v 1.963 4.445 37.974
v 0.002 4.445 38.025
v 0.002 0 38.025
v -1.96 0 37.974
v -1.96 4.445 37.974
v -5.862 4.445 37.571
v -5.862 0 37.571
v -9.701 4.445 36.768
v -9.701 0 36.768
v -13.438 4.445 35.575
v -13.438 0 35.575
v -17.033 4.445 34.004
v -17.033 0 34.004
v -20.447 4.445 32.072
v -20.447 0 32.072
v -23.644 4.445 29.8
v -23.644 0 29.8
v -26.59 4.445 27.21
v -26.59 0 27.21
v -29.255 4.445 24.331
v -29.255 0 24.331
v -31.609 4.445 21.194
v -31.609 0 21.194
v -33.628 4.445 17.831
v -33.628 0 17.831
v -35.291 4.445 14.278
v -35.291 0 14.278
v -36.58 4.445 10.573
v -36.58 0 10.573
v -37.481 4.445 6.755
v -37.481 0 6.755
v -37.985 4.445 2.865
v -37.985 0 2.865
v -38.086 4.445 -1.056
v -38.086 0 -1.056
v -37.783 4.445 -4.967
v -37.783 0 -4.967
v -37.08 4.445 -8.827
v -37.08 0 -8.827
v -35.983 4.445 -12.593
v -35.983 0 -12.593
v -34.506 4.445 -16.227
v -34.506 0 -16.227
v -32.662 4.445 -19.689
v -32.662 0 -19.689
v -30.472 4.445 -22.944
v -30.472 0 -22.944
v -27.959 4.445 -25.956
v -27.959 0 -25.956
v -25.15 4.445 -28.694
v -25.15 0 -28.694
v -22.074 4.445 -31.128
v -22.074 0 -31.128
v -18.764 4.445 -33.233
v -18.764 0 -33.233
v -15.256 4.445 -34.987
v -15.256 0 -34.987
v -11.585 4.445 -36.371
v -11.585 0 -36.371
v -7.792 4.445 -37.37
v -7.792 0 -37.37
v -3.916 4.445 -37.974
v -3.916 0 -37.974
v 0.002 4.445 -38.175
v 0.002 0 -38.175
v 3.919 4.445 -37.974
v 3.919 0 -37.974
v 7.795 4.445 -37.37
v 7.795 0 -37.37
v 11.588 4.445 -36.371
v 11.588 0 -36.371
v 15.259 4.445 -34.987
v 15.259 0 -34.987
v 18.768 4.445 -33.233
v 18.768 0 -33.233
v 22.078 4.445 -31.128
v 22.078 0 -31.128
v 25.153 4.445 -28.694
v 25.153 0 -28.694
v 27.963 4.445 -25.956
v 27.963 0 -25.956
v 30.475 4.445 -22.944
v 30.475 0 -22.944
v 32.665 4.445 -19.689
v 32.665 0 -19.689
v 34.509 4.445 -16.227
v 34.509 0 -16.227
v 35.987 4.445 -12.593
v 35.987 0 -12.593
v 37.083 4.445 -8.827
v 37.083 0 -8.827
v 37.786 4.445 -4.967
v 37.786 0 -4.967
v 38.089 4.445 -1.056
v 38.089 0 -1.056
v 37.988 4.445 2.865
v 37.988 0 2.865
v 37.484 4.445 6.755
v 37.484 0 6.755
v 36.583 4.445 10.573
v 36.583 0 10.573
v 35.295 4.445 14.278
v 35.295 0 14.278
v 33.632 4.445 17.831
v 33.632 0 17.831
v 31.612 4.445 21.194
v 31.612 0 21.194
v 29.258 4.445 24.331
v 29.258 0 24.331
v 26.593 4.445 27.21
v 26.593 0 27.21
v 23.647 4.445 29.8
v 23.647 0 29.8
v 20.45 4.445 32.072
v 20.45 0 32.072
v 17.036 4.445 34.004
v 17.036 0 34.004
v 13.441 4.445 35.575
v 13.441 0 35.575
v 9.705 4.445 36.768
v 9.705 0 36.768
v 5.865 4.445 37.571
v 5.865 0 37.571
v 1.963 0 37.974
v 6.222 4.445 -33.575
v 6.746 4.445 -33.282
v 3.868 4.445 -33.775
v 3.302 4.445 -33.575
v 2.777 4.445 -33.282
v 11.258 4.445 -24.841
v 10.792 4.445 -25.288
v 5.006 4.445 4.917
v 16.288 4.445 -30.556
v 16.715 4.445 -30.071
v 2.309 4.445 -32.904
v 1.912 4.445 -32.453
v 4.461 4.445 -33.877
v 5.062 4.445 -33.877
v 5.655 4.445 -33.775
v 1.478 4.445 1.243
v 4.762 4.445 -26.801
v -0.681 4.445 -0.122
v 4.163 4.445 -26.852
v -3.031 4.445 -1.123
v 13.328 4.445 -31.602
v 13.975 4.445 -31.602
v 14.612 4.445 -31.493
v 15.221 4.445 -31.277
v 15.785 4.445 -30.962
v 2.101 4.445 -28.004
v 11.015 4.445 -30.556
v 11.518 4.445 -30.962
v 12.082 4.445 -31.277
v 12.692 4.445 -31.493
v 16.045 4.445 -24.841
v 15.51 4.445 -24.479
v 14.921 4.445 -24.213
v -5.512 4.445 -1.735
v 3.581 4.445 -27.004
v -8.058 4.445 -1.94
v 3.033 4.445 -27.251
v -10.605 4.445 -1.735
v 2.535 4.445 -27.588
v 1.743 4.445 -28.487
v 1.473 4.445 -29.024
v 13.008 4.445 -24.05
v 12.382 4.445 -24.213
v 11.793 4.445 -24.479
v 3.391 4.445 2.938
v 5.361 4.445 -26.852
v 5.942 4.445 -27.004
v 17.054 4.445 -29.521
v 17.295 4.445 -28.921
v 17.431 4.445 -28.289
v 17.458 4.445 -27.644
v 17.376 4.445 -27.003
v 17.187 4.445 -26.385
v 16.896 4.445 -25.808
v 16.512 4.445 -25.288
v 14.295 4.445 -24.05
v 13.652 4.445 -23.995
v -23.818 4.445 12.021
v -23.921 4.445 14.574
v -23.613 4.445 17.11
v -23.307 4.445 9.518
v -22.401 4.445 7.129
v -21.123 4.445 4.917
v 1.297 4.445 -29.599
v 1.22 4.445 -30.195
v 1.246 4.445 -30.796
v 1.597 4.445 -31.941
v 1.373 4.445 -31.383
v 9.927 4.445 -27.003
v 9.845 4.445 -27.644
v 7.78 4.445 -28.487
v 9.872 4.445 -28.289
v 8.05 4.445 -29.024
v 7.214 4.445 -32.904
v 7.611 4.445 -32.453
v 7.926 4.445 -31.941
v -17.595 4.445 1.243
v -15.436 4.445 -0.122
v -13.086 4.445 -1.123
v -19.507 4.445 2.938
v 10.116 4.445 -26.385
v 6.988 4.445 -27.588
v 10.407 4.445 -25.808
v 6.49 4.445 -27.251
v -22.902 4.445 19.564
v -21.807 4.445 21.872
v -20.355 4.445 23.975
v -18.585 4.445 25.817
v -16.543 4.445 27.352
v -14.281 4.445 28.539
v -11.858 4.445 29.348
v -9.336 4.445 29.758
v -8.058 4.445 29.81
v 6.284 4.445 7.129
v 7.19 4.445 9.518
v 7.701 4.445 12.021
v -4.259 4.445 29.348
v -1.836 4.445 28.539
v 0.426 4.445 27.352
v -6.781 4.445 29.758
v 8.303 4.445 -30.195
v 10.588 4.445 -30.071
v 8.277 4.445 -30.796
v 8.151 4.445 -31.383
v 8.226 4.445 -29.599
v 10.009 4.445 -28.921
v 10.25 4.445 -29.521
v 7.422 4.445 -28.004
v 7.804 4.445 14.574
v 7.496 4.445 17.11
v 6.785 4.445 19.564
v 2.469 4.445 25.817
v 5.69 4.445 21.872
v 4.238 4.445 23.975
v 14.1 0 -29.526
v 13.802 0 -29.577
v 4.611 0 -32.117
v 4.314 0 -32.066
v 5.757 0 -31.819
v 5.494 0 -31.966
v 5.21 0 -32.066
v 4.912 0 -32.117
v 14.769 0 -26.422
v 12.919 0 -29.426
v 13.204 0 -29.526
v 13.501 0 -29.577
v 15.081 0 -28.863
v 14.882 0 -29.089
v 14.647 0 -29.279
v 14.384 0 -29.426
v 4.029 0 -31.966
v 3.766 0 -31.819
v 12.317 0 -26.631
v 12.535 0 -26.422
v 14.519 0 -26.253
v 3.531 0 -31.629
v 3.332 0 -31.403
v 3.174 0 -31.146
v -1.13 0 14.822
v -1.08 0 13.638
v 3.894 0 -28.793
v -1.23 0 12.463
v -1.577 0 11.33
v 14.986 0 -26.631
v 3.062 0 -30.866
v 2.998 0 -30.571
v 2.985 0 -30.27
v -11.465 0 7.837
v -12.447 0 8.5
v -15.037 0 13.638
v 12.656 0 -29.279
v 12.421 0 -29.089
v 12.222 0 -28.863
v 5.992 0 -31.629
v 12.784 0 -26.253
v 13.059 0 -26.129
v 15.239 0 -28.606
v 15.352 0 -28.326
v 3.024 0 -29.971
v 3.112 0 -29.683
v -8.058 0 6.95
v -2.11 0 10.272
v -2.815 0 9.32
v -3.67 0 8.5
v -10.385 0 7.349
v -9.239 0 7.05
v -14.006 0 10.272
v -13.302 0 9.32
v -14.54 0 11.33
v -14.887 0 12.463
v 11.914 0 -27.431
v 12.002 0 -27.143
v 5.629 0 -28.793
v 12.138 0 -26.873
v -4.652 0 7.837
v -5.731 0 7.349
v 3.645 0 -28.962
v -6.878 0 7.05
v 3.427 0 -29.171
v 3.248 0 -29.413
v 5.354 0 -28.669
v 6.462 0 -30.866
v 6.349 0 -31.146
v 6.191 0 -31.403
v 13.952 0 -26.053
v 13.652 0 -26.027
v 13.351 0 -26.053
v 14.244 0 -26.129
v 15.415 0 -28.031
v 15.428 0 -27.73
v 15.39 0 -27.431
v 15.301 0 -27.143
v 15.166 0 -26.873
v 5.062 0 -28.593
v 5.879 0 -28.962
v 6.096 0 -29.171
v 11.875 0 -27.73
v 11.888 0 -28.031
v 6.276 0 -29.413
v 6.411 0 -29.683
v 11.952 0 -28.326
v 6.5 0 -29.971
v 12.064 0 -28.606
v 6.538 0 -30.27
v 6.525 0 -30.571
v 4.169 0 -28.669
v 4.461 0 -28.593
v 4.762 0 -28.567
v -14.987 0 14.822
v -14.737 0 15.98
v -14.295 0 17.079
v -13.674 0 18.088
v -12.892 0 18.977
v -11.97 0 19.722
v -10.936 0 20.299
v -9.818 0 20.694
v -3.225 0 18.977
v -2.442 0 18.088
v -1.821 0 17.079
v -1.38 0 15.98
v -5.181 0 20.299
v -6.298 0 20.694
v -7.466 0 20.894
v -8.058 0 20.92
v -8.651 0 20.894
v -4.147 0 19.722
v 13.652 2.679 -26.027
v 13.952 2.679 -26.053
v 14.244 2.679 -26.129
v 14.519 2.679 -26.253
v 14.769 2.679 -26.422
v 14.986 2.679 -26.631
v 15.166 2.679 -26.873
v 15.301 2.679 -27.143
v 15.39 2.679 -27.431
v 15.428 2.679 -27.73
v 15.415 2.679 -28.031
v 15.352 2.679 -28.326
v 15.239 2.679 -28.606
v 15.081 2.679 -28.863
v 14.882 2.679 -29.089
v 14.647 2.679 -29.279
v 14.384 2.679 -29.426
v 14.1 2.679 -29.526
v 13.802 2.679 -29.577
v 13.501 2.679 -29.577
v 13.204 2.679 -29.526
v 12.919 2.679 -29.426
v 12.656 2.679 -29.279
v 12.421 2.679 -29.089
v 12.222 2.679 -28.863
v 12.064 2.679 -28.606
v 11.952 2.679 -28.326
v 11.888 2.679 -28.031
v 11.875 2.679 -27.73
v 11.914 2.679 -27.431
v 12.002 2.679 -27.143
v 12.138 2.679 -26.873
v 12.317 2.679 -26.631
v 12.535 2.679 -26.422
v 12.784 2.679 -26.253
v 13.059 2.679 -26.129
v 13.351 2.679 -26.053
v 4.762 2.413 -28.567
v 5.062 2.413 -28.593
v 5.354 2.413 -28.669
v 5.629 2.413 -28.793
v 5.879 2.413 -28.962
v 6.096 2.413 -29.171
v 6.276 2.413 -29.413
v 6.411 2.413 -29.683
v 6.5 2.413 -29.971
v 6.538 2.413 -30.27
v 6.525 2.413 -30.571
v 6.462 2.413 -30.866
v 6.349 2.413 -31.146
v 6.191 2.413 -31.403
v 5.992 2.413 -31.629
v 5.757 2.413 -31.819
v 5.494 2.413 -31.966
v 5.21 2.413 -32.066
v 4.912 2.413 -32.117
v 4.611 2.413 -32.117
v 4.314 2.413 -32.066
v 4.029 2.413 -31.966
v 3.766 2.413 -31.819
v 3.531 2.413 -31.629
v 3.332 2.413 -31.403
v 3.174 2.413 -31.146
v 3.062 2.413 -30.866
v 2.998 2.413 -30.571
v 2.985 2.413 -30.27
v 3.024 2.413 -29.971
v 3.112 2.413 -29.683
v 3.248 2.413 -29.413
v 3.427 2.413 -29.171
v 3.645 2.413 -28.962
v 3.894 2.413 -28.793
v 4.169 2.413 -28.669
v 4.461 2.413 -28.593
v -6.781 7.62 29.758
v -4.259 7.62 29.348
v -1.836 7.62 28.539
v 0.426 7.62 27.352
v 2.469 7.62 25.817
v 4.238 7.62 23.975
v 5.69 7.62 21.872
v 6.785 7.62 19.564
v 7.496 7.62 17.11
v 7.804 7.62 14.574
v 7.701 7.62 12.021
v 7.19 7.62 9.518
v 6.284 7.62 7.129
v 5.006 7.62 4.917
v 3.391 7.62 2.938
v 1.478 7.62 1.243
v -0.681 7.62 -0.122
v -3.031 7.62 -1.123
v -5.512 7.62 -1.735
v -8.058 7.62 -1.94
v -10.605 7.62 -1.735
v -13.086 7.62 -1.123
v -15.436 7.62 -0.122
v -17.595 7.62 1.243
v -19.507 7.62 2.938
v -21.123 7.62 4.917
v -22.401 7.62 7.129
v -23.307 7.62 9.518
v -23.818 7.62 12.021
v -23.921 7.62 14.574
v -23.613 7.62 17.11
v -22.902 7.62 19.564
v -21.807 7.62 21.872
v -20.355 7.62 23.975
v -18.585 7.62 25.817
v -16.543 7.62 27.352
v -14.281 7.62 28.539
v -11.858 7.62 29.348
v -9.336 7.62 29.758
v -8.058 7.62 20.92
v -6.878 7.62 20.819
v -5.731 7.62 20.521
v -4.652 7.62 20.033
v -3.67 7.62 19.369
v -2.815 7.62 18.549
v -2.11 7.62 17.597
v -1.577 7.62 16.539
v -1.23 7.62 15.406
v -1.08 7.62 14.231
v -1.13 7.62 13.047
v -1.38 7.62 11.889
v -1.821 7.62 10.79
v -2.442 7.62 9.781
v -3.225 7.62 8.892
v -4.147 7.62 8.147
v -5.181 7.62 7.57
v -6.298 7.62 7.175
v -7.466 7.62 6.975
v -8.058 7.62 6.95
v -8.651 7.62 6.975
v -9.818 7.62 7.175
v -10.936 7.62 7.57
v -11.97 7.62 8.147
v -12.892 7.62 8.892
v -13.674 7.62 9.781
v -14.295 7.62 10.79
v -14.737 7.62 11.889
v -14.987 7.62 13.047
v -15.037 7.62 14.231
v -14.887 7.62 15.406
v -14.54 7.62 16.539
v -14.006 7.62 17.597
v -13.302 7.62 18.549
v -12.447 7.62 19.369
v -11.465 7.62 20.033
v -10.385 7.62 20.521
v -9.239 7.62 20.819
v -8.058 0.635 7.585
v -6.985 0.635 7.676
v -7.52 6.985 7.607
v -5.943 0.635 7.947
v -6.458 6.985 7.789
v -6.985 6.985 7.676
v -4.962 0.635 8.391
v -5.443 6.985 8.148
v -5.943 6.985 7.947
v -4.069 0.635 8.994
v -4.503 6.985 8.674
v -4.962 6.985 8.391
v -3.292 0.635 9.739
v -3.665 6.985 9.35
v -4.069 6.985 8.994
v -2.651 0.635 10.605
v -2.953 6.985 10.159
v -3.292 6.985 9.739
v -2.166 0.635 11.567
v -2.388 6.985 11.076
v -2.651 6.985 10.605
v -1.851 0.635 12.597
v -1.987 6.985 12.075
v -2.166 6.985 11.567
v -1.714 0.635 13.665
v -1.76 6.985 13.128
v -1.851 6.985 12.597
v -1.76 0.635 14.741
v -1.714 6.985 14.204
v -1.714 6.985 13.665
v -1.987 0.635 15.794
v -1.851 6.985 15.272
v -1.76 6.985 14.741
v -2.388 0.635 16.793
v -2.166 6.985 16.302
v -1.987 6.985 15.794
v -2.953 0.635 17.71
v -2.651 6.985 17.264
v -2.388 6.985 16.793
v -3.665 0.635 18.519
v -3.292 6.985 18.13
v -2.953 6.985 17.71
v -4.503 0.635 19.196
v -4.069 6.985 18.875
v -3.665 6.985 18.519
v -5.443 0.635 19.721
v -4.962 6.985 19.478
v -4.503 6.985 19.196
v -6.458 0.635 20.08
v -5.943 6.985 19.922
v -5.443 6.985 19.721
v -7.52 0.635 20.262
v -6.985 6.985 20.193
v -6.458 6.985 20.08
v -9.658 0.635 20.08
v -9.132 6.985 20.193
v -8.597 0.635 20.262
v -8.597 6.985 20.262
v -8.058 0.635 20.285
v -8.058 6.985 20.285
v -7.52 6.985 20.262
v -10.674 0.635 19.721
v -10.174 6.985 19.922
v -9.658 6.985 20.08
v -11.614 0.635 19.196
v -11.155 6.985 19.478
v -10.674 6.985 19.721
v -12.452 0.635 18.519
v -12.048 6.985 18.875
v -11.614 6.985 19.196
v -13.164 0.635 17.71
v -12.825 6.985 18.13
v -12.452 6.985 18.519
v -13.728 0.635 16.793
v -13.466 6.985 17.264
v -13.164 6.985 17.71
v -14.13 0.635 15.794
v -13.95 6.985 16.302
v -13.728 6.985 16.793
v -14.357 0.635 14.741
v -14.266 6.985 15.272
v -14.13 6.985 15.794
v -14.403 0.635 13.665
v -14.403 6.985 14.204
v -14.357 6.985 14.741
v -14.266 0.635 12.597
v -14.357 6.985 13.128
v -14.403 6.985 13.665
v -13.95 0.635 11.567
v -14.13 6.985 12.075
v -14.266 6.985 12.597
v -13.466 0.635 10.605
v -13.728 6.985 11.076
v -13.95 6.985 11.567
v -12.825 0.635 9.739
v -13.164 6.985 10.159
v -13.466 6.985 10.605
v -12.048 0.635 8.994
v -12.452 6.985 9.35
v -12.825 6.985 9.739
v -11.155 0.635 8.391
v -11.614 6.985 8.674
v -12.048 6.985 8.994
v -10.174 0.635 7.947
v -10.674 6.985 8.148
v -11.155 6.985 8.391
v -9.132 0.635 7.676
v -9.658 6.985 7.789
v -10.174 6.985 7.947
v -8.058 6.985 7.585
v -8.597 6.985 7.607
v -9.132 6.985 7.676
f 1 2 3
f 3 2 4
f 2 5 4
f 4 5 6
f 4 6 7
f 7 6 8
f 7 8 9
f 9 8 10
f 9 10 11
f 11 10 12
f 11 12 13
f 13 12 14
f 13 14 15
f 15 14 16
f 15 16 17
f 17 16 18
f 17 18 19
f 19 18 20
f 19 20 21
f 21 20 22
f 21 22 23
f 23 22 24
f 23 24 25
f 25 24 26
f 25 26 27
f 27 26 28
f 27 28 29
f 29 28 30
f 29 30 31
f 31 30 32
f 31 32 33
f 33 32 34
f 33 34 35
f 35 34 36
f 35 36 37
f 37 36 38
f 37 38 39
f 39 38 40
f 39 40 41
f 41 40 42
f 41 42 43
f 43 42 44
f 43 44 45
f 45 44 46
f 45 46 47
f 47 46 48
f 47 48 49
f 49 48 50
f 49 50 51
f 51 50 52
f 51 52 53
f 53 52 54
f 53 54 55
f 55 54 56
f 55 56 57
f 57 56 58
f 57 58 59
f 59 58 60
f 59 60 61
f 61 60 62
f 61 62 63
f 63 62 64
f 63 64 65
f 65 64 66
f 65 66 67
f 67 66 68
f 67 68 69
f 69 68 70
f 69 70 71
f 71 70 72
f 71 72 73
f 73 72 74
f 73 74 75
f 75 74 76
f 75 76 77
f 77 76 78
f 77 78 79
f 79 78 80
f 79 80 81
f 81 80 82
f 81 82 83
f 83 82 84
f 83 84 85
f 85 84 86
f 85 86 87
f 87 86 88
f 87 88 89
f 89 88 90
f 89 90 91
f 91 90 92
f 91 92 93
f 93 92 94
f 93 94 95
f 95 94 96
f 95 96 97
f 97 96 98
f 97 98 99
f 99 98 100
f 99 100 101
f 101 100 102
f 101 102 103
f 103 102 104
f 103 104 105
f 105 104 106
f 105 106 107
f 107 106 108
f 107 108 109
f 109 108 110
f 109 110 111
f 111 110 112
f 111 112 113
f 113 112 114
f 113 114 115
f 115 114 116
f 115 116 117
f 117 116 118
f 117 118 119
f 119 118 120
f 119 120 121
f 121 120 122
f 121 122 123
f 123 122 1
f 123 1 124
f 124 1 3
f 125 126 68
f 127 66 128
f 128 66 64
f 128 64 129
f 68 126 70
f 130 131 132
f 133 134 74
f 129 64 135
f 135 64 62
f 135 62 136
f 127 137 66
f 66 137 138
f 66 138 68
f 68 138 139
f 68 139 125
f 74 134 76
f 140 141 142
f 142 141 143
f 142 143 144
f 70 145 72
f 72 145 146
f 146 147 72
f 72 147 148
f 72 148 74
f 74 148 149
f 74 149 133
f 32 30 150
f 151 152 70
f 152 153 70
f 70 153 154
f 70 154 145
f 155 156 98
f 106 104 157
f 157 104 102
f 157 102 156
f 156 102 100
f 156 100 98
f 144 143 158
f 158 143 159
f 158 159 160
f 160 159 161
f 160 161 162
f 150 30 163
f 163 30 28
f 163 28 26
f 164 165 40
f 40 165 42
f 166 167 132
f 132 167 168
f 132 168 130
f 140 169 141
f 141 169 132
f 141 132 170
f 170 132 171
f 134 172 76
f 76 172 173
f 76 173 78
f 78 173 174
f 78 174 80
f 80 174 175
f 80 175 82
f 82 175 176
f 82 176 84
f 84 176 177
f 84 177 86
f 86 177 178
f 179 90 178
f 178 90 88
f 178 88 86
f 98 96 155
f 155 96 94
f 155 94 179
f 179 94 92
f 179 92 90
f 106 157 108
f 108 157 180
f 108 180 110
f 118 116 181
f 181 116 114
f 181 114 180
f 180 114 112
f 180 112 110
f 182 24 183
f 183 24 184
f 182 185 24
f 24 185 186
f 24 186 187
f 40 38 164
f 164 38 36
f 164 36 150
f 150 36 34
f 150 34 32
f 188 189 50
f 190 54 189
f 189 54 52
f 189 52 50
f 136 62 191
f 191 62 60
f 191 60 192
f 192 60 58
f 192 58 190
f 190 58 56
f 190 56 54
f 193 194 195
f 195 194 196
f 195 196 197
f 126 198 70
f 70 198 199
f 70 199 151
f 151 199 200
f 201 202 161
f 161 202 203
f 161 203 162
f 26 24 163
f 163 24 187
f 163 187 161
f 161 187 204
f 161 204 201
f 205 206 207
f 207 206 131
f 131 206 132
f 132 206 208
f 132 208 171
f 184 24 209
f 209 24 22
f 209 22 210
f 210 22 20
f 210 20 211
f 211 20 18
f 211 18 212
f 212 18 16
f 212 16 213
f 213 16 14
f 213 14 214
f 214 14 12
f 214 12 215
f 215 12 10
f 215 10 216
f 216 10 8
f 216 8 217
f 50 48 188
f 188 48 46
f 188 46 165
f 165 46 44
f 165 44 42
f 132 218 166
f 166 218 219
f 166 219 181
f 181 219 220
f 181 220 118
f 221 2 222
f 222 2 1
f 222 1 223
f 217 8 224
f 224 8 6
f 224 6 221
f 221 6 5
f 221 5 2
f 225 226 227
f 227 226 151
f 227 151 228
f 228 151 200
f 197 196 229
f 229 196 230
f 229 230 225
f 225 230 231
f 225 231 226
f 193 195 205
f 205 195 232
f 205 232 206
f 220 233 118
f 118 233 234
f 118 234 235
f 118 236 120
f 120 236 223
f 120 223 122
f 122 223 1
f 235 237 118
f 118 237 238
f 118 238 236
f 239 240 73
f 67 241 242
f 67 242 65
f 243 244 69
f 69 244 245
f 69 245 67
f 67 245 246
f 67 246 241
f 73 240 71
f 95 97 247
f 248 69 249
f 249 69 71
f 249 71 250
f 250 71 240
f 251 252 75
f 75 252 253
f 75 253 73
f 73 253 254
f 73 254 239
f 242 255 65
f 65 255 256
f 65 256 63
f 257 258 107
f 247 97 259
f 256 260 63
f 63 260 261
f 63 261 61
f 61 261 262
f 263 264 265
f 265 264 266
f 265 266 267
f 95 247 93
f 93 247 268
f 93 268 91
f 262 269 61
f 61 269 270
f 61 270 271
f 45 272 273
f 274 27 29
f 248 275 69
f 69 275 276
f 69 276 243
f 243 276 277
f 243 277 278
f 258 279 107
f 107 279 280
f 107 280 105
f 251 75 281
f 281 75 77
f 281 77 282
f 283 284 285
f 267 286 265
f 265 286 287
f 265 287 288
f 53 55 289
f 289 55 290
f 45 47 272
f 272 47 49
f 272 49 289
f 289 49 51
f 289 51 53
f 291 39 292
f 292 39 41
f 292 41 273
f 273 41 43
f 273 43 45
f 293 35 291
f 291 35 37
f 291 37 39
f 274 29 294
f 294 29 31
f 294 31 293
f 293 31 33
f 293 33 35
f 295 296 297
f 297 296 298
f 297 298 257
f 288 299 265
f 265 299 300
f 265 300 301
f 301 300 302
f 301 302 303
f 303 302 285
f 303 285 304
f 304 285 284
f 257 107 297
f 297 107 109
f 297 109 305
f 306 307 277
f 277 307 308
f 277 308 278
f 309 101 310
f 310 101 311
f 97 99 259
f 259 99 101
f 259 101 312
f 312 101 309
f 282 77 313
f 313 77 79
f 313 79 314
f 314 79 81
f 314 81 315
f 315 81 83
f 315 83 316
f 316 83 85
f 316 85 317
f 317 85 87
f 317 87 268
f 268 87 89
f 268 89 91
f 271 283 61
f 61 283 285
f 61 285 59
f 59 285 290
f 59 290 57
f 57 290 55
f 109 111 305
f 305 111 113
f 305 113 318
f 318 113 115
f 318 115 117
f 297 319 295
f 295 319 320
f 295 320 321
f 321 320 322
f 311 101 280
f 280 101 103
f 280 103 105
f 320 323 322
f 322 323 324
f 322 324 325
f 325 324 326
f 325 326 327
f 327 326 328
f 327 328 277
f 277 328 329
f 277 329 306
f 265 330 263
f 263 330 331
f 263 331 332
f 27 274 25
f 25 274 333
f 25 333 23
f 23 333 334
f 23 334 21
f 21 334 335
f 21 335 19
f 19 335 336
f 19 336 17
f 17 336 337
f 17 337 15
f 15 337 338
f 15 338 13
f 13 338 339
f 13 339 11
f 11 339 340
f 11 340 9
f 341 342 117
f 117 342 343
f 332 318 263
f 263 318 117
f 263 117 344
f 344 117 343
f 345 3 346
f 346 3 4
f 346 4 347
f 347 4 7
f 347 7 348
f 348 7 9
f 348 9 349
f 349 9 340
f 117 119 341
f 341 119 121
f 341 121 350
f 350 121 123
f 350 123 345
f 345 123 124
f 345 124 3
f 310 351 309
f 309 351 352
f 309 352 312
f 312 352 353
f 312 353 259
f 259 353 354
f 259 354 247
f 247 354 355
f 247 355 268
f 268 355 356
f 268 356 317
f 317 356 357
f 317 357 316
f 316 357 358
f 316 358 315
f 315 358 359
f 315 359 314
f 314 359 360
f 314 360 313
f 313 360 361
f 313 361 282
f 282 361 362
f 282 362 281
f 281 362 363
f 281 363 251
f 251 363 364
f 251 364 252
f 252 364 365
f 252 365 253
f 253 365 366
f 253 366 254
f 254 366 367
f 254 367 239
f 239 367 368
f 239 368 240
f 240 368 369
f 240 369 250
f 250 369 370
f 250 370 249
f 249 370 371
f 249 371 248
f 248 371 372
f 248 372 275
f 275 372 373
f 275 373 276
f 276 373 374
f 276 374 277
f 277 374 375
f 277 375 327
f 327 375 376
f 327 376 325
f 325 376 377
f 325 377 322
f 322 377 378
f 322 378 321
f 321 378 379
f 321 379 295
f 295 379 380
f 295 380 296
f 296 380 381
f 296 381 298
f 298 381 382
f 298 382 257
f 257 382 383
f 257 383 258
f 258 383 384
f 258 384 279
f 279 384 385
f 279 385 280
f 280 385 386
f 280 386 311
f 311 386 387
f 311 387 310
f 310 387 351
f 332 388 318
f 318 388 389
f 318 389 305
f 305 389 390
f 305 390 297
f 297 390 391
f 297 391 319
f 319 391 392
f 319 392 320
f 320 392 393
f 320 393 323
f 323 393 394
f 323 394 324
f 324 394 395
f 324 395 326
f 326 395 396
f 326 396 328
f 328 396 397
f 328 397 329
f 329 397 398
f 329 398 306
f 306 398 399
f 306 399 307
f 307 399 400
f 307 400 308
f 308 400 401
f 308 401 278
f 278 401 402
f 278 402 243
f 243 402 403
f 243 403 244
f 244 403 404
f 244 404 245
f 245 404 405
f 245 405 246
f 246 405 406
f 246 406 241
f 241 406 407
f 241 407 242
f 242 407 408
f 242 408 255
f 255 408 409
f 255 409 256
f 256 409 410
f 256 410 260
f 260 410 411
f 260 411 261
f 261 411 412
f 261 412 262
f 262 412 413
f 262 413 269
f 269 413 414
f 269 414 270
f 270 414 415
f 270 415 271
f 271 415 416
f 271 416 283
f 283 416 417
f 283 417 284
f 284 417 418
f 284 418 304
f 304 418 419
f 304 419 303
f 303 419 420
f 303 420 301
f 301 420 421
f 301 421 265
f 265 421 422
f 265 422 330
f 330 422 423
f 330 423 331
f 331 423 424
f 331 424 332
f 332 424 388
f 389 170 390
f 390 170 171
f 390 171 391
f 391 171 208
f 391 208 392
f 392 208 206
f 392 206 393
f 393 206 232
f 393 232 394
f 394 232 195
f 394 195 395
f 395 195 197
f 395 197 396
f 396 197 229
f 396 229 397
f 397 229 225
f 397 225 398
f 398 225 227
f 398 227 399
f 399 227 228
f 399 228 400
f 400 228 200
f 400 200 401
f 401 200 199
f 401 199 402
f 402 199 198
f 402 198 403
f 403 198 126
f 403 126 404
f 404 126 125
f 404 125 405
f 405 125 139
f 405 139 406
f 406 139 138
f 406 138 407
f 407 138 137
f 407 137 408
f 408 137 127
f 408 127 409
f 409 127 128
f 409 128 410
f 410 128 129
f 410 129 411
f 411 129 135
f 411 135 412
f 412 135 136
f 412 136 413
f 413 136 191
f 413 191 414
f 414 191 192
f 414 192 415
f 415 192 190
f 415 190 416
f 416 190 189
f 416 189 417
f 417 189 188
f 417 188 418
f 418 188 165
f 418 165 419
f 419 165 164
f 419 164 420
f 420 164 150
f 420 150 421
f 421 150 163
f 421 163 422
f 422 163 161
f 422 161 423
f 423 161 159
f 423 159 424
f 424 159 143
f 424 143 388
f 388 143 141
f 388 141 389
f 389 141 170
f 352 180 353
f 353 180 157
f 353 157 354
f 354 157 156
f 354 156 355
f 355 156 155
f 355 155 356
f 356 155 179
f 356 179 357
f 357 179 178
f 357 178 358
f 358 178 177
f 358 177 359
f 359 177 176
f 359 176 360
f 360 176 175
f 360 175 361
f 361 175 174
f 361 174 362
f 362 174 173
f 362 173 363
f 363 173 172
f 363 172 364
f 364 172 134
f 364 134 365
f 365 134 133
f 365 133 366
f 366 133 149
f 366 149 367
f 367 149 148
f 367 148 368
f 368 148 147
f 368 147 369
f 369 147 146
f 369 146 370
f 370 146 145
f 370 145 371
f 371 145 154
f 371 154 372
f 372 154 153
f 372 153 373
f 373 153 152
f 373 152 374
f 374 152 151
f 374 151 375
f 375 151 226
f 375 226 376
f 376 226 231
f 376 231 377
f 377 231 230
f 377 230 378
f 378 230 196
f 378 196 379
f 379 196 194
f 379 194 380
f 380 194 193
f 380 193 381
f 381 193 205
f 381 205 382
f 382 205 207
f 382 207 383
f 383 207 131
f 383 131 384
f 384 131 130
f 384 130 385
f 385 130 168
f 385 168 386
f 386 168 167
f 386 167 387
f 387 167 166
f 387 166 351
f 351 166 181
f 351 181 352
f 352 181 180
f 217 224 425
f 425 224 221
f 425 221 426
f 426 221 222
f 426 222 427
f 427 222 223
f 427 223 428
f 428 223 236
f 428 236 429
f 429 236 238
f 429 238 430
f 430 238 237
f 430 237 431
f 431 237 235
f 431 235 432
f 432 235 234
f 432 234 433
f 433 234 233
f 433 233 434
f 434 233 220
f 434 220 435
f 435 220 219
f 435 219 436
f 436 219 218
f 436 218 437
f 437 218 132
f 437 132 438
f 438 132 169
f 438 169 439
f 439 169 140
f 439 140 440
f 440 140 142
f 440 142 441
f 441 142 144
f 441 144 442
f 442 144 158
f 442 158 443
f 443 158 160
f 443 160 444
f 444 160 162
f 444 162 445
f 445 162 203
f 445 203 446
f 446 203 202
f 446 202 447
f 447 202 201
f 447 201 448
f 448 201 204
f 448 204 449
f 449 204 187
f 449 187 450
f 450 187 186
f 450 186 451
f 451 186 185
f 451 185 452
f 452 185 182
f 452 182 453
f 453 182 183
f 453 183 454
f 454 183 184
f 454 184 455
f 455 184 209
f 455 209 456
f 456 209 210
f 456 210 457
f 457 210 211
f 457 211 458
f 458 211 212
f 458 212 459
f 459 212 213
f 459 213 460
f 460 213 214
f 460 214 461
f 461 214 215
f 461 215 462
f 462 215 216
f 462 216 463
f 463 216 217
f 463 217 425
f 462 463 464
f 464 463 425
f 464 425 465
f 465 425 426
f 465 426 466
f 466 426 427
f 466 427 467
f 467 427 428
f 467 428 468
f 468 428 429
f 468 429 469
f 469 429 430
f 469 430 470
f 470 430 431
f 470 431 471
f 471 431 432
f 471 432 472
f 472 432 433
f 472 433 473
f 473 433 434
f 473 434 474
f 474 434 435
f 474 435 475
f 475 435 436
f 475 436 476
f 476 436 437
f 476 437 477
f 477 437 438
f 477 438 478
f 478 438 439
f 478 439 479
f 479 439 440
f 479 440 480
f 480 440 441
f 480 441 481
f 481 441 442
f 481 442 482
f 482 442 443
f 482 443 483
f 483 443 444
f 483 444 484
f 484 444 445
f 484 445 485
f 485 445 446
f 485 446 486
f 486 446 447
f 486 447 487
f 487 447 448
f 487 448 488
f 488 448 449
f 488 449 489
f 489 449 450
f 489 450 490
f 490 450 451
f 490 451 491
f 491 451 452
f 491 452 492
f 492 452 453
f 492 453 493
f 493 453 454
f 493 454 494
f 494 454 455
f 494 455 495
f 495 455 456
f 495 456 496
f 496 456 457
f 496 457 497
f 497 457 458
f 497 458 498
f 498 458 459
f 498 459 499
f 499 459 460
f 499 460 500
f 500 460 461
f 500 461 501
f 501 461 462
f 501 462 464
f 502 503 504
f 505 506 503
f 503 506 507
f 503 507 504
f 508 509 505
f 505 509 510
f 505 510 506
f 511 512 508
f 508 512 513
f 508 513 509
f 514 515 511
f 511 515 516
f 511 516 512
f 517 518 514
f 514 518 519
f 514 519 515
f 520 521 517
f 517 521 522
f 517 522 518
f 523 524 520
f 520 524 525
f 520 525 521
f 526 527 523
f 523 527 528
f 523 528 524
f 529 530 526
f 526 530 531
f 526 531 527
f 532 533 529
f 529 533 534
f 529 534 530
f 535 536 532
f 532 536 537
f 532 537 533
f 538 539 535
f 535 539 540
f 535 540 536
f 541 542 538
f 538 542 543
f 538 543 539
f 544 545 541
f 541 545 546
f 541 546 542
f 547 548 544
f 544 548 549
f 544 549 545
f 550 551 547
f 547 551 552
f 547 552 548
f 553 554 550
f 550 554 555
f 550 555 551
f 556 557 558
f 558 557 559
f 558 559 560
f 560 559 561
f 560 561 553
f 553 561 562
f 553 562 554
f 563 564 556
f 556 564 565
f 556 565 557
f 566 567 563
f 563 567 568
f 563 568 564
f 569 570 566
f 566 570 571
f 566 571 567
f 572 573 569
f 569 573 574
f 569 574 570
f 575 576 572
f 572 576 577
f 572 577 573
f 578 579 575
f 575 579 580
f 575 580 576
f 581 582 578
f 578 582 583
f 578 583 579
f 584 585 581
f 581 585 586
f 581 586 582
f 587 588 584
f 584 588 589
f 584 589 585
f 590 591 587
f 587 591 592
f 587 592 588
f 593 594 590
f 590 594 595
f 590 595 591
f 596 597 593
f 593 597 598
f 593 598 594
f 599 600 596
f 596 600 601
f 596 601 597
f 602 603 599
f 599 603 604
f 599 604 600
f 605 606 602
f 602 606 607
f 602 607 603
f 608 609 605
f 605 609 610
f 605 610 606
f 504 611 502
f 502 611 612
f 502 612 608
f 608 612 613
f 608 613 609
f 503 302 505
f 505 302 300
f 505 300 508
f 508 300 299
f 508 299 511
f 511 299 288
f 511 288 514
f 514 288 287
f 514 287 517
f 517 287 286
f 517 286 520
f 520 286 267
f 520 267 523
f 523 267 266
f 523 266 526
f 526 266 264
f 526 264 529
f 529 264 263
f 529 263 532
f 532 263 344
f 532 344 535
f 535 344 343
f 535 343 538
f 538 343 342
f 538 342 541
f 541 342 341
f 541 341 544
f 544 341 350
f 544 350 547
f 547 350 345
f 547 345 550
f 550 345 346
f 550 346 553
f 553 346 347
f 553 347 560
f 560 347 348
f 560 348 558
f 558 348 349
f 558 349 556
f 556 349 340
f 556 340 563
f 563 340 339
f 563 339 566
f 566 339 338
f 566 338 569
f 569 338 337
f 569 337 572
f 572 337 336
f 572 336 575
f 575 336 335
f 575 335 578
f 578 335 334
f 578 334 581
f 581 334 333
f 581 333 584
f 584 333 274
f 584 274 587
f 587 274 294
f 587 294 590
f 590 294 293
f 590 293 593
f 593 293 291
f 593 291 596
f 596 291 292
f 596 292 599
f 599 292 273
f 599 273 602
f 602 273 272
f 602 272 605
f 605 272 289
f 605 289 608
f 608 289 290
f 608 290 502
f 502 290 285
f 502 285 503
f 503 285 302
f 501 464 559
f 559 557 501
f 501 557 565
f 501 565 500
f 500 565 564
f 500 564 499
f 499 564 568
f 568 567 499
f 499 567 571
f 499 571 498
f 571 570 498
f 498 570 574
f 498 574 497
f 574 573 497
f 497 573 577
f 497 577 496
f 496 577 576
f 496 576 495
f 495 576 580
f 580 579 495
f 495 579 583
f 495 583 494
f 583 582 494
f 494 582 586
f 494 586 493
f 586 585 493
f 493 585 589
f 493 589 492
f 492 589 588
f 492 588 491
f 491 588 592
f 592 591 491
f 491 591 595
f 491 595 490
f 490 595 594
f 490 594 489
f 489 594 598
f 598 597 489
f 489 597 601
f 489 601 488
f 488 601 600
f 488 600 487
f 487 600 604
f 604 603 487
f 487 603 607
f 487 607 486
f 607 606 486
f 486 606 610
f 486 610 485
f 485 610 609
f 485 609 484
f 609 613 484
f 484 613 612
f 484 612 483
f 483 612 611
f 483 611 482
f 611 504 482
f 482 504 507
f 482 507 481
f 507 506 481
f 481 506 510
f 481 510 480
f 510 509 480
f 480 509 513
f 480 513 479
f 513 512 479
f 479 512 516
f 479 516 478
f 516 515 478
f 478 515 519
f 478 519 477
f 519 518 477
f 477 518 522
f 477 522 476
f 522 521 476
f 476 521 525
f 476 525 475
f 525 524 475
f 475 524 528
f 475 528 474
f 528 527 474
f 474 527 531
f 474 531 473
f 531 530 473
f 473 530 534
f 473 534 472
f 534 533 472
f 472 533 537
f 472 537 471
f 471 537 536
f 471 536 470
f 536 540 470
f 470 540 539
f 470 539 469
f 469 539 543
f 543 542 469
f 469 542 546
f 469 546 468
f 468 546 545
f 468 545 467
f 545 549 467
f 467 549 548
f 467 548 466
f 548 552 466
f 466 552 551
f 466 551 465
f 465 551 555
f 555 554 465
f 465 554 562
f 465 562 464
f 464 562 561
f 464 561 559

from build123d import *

# Parameters (mm, degrees)
SKETCH1_R               = 38.1
BOSS_EXTRUDE1_DEPTH     = 4.445
SKETCH2_R               = 14.4145
SKETCH2_R_2             = 1.778
CUT_EXTRUDE1_DEPTH      = 1
CUT_EXTRUDE1_DEPTH_BACK = 5.445
CHAMFER1_SIZE           = 2.032
CHAMFER1_SIZE2          = 1.766390651
CHAMFER1_PART_2_SIZE    = 2.032
CHAMFER1_PART_2_SIZE2   = 1.766390651
SKETCH10_R              = 15.875
SKETCH10_R_2            = 6.35
BOSS_EXTRUDE5_DEPTH     = 7.62
CHAMFER2_SIZE           = 0.635


with BuildPart() as part:
    # Sketch1 → Boss-Extrude1 (new body)
    with BuildSketch(Plane(origin=(0, 0, 0), x_dir=(1, 0, 0), z_dir=(0, 1, 0))):
        Circle(SKETCH1_R)
    extrude(amount=BOSS_EXTRUDE1_DEPTH)

    # Sketch2 → Cut-Extrude1 (cut, two sides)
    with BuildSketch(Plane(origin=(0, 4.445, 0), x_dir=(1, 0, 0), z_dir=(0, 1, 0))) as cut_extrude1_sk:
        with Locations((-8.06, -14.01)):
            Circle(SKETCH2_R)
        with Locations((4.759999878, 30.270007278)):
            Circle(SKETCH2_R_2)
        with Locations((13.649999878, 27.730007278)):
            Circle(SKETCH2_R_2)
    extrude(amount=CUT_EXTRUDE1_DEPTH, mode=Mode.SUBTRACT)
    extrude(cut_extrude1_sk.sketch, amount=-CUT_EXTRUDE1_DEPTH_BACK, mode=Mode.SUBTRACT)

    # Chamfer1
    chamfer1_edges = [part.edges().sort_by_distance(p)[0] for p in [
        (2.981999878, 4.445, -30.270007278),
    ]]
    chamfer1_side = [part.faces().sort_by_distance(p)[0] for p in [
        (2.981999878, 2.2225, -30.270007278),
    ]]
    chamfer(chamfer1_edges, length=CHAMFER1_SIZE, length2=CHAMFER1_SIZE2, reference=chamfer1_side[0])

    # Chamfer1 part 2
    chamfer1_part_2_edges = [part.edges().sort_by_distance(p)[0] for p in [
        (11.871999878, 4.445, -27.730007278),
    ]]
    chamfer1_part_2_side = [part.faces().sort_by_distance(p)[0] for p in [
        (1.306244319, 4.445, -2.20411426),
    ]]
    chamfer(chamfer1_part_2_edges, length=CHAMFER1_PART_2_SIZE, length2=CHAMFER1_PART_2_SIZE2, reference=chamfer1_part_2_side[0])

    # Sketch10 → Boss-Extrude5 (add)
    with BuildSketch(Plane.XZ):
        with Locations((-8.06, 14.01)):
            Circle(SKETCH10_R)
        with Locations((-8.06, 14.01)):
            Circle(SKETCH10_R_2, mode=Mode.SUBTRACT)
    extrude(amount=-BOSS_EXTRUDE5_DEPTH)

    # Chamfer2
    chamfer2_edges = [part.edges().sort_by_distance(p)[0] for p in [
        (-14.41, 7.62, 14.01),
        (-14.41, 0, 14.01),
    ]]
    chamfer(chamfer2_edges, length=CHAMFER2_SIZE)


solid = part.part
